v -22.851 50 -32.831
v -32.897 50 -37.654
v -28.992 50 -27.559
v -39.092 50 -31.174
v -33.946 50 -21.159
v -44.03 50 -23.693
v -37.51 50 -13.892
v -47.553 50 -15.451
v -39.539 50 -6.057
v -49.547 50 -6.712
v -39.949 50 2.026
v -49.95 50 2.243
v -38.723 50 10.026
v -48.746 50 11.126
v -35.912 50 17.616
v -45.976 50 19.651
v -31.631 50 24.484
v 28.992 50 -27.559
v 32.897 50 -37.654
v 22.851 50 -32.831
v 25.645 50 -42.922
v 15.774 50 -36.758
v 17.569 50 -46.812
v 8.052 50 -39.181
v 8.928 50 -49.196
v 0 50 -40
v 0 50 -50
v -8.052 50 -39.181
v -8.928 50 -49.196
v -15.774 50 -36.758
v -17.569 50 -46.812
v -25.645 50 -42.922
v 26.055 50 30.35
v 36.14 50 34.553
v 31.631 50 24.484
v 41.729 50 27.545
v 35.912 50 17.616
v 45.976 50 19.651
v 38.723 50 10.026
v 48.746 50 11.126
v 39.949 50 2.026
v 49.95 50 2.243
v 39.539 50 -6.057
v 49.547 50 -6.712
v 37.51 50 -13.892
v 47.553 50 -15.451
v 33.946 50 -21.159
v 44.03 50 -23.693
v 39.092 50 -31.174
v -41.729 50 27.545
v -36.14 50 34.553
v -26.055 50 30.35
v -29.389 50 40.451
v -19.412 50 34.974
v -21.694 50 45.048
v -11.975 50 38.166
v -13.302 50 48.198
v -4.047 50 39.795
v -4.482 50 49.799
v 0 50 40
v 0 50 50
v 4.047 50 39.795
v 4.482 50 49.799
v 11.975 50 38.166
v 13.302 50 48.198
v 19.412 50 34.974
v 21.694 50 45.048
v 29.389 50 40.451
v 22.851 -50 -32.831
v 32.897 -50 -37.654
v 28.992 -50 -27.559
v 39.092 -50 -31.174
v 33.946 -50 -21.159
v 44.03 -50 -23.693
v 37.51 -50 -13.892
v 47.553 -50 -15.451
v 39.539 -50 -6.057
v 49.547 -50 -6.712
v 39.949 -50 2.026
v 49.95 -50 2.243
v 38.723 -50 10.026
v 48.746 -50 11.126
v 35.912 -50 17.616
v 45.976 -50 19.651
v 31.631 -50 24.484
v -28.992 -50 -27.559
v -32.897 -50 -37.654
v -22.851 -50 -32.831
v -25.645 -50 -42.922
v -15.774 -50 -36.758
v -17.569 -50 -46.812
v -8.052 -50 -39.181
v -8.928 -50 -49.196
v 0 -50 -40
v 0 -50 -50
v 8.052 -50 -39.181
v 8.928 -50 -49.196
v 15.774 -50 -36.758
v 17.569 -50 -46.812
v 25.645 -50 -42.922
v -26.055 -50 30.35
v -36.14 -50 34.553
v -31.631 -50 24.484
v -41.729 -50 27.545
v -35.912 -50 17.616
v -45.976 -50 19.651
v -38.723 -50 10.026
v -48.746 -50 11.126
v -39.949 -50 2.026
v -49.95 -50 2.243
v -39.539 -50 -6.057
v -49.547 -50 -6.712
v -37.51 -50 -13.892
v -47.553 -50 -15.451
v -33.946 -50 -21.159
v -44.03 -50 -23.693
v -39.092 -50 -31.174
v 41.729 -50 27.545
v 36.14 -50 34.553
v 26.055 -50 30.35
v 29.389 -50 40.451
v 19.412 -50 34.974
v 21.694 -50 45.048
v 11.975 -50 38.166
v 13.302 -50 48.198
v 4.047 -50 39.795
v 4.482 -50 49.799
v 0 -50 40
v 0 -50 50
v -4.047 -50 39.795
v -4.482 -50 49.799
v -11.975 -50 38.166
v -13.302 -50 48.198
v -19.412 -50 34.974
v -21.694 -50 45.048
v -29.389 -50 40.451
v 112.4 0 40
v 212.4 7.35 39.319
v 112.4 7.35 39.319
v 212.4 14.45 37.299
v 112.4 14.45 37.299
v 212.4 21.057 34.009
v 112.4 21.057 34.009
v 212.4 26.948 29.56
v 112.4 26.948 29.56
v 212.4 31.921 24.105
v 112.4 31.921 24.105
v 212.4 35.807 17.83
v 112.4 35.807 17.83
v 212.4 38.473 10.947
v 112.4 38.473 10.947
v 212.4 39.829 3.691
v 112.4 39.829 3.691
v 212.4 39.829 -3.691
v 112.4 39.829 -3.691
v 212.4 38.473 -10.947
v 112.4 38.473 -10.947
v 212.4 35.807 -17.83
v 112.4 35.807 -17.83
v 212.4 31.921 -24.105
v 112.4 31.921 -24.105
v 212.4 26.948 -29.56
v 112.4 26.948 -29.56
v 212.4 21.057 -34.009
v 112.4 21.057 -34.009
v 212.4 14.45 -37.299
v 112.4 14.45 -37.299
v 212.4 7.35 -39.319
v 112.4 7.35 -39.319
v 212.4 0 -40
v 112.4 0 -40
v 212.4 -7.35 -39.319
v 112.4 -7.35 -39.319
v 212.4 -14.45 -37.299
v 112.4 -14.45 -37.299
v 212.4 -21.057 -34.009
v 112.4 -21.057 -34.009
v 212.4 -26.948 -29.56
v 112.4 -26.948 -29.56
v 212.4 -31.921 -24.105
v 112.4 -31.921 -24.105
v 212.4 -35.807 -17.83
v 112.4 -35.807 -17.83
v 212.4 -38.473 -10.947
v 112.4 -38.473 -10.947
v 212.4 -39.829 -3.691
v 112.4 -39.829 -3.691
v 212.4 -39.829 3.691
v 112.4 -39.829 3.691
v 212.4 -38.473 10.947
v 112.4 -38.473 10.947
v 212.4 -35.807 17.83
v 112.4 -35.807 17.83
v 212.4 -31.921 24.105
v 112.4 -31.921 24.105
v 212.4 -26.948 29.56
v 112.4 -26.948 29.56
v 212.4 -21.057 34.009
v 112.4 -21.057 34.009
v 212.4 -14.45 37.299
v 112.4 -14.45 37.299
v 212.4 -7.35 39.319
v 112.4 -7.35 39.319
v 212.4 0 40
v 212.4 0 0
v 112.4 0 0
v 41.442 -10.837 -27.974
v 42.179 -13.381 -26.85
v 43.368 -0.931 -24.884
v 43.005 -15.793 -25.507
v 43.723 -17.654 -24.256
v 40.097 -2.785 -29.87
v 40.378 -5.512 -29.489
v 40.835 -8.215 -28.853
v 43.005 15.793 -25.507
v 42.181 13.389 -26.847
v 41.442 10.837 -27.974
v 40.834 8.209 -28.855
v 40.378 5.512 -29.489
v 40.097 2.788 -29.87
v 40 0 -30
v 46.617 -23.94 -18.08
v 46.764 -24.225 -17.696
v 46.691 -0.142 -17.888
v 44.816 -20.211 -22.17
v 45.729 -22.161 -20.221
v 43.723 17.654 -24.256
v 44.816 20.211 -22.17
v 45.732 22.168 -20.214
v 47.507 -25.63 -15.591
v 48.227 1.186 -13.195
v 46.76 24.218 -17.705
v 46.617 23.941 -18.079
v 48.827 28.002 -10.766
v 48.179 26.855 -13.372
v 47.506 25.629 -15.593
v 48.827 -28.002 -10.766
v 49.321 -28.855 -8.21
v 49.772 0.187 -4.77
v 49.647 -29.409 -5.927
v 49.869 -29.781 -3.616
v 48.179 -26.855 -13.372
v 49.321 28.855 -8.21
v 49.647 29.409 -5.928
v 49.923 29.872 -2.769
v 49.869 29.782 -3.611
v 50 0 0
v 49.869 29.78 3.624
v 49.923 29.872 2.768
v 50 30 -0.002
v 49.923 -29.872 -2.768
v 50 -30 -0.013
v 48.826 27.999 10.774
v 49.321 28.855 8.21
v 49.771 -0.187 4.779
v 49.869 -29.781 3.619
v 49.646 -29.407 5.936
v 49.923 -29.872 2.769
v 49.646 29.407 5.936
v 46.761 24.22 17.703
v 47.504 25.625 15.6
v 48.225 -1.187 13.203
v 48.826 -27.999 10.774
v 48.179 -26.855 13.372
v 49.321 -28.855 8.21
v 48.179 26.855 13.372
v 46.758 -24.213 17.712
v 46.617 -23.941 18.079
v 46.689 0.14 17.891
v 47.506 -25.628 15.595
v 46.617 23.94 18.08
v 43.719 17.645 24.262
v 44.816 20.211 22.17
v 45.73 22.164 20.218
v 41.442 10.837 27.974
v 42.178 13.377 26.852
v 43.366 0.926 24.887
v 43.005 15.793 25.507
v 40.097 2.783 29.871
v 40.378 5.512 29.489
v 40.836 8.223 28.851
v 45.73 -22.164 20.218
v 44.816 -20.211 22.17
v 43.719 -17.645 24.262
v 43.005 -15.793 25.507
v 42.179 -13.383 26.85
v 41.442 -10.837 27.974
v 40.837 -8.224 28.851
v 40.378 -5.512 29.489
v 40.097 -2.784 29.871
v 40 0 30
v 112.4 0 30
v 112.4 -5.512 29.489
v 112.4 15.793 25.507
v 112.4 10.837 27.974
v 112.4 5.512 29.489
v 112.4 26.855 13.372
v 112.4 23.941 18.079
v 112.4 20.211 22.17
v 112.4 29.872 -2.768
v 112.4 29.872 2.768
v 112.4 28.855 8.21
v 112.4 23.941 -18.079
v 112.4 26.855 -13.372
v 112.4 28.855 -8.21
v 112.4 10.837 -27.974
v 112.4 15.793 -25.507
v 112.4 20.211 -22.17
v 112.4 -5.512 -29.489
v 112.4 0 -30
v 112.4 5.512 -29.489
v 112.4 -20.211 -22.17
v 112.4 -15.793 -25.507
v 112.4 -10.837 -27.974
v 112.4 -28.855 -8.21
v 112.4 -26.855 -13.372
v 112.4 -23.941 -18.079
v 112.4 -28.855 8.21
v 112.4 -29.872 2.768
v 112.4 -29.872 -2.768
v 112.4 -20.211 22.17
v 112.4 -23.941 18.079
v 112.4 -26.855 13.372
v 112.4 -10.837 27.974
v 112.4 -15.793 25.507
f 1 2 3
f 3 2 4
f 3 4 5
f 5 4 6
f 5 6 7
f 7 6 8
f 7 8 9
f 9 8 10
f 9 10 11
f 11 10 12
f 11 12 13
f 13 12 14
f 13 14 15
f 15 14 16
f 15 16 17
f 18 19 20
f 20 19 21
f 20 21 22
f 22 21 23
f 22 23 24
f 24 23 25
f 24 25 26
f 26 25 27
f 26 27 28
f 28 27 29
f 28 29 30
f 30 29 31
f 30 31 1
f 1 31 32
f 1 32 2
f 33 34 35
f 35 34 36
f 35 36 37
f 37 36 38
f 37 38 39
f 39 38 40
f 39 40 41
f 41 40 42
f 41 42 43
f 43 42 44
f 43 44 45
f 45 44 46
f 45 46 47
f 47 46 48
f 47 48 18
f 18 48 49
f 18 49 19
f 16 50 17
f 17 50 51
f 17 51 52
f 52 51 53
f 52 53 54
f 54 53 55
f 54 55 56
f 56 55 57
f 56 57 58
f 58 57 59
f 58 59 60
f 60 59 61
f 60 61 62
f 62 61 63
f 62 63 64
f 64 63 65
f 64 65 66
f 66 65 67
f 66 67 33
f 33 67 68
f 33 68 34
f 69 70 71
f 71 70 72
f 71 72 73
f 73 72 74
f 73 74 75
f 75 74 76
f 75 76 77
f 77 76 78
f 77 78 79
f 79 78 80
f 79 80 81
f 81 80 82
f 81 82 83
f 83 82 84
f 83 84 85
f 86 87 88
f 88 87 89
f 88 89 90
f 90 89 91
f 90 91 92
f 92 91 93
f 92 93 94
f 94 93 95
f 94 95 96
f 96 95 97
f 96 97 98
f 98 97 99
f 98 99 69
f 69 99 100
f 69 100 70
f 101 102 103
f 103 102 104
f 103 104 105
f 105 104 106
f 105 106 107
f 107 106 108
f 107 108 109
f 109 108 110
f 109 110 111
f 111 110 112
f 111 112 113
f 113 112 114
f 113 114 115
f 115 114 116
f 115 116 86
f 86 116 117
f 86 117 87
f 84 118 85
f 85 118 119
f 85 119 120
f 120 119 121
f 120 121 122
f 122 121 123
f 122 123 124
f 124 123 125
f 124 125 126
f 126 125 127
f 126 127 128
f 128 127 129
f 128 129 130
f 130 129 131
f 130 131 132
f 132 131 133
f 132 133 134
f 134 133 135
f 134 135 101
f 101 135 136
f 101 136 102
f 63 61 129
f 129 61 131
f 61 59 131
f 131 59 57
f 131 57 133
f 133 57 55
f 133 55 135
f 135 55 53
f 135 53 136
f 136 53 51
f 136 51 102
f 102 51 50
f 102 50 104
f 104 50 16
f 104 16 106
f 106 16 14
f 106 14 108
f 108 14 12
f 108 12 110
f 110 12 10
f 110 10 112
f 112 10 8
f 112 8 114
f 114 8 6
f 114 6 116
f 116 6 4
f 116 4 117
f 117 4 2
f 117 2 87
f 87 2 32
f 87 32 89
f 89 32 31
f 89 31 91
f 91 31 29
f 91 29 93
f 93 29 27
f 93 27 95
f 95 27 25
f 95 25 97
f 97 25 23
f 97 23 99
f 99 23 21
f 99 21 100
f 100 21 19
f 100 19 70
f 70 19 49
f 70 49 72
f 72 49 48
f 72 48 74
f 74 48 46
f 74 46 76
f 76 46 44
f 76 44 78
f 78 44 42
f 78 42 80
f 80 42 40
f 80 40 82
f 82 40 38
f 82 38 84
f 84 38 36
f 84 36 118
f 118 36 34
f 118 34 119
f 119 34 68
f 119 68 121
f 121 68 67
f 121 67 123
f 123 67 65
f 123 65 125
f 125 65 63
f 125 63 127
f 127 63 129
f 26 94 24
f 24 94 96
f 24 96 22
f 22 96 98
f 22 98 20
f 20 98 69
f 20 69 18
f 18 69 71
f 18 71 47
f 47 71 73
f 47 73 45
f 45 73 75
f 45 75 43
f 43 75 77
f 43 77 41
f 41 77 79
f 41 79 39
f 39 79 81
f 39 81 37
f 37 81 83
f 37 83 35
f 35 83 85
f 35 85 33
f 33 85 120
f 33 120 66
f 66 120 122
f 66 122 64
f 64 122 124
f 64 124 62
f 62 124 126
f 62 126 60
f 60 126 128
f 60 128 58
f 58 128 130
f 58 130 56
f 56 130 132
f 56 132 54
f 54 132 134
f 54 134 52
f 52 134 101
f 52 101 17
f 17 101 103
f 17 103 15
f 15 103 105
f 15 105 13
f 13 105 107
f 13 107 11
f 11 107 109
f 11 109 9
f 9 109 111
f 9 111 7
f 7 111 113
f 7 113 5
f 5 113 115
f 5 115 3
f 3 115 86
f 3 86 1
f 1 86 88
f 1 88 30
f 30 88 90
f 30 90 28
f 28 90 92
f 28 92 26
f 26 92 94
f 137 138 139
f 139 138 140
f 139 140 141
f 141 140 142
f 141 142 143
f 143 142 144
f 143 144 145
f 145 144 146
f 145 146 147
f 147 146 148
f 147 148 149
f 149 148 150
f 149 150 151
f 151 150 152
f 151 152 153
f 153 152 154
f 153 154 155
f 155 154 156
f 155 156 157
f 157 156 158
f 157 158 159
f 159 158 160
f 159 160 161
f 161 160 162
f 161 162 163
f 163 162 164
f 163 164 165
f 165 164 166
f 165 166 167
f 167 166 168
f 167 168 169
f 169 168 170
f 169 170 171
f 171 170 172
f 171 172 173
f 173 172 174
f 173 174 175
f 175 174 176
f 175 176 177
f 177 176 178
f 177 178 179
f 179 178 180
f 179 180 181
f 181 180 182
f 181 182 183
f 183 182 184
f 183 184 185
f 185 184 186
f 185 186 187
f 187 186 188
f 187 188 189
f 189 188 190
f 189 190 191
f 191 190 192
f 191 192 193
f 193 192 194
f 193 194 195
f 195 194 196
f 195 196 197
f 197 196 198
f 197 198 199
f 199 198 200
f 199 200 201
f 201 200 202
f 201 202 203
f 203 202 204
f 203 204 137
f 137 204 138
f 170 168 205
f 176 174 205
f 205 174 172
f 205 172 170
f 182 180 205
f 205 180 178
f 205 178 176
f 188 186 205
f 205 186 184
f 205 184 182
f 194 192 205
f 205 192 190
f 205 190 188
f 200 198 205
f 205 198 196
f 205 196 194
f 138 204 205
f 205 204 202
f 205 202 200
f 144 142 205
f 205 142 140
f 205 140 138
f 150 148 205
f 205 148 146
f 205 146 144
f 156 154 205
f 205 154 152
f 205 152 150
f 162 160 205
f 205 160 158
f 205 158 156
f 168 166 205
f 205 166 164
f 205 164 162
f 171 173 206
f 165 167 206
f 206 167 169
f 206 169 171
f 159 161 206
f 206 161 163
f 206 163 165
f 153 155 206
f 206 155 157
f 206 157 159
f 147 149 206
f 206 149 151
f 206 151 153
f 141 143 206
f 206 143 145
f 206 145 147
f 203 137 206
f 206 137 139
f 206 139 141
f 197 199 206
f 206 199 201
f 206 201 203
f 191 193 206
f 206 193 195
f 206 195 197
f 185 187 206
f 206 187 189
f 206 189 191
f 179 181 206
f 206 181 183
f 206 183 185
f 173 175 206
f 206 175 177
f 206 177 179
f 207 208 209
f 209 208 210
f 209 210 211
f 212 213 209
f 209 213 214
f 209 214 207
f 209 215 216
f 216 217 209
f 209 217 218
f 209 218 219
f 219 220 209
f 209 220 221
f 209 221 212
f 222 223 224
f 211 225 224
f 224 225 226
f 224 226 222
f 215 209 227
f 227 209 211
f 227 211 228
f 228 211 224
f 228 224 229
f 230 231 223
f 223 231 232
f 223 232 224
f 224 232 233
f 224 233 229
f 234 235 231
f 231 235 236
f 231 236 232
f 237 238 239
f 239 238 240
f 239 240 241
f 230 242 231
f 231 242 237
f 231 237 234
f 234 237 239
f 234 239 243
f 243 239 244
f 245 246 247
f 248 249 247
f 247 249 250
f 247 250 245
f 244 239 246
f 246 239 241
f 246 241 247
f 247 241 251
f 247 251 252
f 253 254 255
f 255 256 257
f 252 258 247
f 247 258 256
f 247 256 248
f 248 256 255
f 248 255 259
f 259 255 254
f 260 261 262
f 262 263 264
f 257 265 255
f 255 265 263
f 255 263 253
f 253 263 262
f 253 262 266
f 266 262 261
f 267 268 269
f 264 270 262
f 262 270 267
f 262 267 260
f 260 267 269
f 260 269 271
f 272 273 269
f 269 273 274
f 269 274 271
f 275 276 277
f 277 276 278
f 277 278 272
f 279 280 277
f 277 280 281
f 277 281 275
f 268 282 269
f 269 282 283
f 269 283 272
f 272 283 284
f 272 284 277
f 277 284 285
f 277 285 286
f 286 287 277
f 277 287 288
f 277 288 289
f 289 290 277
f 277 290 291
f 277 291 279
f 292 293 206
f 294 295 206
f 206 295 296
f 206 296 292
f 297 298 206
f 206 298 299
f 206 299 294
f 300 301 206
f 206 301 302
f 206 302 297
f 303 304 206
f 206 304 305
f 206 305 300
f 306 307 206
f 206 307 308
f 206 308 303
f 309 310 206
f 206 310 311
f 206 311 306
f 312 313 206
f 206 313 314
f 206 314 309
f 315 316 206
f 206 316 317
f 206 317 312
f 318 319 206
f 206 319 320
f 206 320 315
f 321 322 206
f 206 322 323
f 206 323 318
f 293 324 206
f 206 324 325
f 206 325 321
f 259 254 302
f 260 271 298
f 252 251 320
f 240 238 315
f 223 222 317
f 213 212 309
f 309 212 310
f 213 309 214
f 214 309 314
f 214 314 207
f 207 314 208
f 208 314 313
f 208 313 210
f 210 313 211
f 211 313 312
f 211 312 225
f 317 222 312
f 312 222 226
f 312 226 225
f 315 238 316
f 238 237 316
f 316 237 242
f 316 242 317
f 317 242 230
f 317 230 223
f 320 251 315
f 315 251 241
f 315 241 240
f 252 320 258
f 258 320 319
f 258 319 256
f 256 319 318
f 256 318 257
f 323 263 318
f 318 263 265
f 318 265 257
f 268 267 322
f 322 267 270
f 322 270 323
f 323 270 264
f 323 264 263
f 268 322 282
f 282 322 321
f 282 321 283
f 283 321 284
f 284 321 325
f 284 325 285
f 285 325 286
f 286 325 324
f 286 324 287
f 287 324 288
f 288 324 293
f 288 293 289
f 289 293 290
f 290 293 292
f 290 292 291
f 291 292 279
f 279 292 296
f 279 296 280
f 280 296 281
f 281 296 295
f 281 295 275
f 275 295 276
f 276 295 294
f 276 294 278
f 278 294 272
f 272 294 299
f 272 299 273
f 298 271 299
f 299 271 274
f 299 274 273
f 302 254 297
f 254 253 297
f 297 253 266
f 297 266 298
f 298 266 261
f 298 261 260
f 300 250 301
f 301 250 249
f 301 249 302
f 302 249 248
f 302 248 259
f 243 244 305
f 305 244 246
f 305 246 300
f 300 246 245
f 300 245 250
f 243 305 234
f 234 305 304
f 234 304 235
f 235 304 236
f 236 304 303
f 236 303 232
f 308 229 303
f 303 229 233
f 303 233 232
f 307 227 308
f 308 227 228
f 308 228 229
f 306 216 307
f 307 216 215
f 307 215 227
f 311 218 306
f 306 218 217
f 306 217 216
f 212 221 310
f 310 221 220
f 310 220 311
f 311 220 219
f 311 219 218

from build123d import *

# Parameters (mm, degrees)
SKETCH_1_R           = 50
SKETCH_1_R_2         = 40
EXTRUDE_1_DEPTH      = 50
SKETCH_2_R           = 40
EXTRUDE_2_DEPTH      = 50
EXTRUDE_3_REACH      = 179.126
EXTRUDE_3_END_RADIUS = 50
SKETCH_4_R           = 30


with BuildPart() as part:
    # 草图1 → 凸台-拉伸1 (new, symmetric)
    with BuildSketch(Plane(origin=(0, 0, 0), x_dir=(1, 0, 0), z_dir=(0, 1, 0))):
        with Locations(Location((0, 0, 0), (0, 0, 270))):
            Circle(SKETCH_1_R)
        with Locations(Location((0, 0, 0), (0, 0, 270))):
            Circle(SKETCH_1_R_2, mode=Mode.SUBTRACT)
    extrude(amount=EXTRUDE_1_DEPTH, both=True)


with BuildPart() as body_2:
    # 草图2 → 凸台-拉伸2 (new, symmetric)
    with BuildSketch(Plane(origin=(162.4, 0, 0), x_dir=(0, 0, -1), z_dir=(1, 0, 0))):
        Circle(SKETCH_2_R)
    extrude(amount=EXTRUDE_2_DEPTH, both=True)


with BuildPart() as body_3:
    # 凸台-拉伸3: up to this cylinder (the profile starts outside it)
    extrude_3_end = Plane(origin=(0, 0, 0), z_dir=(0, -1, 0)) * Cylinder(EXTRUDE_3_END_RADIUS, 459.252, mode=Mode.PRIVATE)
    # 草图4 → 凸台-拉伸3 (new, up to the surface)
    with BuildSketch(Plane.ZY.offset(-112.4), mode=Mode.PRIVATE) as extrude_3_sk1:
        with Locations(Location((0, 0, 0), (0, 0, 180))):
            Circle(SKETCH_4_R)
    extrude_3_tool1 = extrude(extrude_3_sk1.sketch, amount=EXTRUDE_3_REACH, mode=Mode.PRIVATE) - extrude_3_end
    add(extrude_3_tool1.solids().sort_by_distance((112.4, 0, 0))[0])


solid = Compound([part.part, body_2.part, body_3.part])
